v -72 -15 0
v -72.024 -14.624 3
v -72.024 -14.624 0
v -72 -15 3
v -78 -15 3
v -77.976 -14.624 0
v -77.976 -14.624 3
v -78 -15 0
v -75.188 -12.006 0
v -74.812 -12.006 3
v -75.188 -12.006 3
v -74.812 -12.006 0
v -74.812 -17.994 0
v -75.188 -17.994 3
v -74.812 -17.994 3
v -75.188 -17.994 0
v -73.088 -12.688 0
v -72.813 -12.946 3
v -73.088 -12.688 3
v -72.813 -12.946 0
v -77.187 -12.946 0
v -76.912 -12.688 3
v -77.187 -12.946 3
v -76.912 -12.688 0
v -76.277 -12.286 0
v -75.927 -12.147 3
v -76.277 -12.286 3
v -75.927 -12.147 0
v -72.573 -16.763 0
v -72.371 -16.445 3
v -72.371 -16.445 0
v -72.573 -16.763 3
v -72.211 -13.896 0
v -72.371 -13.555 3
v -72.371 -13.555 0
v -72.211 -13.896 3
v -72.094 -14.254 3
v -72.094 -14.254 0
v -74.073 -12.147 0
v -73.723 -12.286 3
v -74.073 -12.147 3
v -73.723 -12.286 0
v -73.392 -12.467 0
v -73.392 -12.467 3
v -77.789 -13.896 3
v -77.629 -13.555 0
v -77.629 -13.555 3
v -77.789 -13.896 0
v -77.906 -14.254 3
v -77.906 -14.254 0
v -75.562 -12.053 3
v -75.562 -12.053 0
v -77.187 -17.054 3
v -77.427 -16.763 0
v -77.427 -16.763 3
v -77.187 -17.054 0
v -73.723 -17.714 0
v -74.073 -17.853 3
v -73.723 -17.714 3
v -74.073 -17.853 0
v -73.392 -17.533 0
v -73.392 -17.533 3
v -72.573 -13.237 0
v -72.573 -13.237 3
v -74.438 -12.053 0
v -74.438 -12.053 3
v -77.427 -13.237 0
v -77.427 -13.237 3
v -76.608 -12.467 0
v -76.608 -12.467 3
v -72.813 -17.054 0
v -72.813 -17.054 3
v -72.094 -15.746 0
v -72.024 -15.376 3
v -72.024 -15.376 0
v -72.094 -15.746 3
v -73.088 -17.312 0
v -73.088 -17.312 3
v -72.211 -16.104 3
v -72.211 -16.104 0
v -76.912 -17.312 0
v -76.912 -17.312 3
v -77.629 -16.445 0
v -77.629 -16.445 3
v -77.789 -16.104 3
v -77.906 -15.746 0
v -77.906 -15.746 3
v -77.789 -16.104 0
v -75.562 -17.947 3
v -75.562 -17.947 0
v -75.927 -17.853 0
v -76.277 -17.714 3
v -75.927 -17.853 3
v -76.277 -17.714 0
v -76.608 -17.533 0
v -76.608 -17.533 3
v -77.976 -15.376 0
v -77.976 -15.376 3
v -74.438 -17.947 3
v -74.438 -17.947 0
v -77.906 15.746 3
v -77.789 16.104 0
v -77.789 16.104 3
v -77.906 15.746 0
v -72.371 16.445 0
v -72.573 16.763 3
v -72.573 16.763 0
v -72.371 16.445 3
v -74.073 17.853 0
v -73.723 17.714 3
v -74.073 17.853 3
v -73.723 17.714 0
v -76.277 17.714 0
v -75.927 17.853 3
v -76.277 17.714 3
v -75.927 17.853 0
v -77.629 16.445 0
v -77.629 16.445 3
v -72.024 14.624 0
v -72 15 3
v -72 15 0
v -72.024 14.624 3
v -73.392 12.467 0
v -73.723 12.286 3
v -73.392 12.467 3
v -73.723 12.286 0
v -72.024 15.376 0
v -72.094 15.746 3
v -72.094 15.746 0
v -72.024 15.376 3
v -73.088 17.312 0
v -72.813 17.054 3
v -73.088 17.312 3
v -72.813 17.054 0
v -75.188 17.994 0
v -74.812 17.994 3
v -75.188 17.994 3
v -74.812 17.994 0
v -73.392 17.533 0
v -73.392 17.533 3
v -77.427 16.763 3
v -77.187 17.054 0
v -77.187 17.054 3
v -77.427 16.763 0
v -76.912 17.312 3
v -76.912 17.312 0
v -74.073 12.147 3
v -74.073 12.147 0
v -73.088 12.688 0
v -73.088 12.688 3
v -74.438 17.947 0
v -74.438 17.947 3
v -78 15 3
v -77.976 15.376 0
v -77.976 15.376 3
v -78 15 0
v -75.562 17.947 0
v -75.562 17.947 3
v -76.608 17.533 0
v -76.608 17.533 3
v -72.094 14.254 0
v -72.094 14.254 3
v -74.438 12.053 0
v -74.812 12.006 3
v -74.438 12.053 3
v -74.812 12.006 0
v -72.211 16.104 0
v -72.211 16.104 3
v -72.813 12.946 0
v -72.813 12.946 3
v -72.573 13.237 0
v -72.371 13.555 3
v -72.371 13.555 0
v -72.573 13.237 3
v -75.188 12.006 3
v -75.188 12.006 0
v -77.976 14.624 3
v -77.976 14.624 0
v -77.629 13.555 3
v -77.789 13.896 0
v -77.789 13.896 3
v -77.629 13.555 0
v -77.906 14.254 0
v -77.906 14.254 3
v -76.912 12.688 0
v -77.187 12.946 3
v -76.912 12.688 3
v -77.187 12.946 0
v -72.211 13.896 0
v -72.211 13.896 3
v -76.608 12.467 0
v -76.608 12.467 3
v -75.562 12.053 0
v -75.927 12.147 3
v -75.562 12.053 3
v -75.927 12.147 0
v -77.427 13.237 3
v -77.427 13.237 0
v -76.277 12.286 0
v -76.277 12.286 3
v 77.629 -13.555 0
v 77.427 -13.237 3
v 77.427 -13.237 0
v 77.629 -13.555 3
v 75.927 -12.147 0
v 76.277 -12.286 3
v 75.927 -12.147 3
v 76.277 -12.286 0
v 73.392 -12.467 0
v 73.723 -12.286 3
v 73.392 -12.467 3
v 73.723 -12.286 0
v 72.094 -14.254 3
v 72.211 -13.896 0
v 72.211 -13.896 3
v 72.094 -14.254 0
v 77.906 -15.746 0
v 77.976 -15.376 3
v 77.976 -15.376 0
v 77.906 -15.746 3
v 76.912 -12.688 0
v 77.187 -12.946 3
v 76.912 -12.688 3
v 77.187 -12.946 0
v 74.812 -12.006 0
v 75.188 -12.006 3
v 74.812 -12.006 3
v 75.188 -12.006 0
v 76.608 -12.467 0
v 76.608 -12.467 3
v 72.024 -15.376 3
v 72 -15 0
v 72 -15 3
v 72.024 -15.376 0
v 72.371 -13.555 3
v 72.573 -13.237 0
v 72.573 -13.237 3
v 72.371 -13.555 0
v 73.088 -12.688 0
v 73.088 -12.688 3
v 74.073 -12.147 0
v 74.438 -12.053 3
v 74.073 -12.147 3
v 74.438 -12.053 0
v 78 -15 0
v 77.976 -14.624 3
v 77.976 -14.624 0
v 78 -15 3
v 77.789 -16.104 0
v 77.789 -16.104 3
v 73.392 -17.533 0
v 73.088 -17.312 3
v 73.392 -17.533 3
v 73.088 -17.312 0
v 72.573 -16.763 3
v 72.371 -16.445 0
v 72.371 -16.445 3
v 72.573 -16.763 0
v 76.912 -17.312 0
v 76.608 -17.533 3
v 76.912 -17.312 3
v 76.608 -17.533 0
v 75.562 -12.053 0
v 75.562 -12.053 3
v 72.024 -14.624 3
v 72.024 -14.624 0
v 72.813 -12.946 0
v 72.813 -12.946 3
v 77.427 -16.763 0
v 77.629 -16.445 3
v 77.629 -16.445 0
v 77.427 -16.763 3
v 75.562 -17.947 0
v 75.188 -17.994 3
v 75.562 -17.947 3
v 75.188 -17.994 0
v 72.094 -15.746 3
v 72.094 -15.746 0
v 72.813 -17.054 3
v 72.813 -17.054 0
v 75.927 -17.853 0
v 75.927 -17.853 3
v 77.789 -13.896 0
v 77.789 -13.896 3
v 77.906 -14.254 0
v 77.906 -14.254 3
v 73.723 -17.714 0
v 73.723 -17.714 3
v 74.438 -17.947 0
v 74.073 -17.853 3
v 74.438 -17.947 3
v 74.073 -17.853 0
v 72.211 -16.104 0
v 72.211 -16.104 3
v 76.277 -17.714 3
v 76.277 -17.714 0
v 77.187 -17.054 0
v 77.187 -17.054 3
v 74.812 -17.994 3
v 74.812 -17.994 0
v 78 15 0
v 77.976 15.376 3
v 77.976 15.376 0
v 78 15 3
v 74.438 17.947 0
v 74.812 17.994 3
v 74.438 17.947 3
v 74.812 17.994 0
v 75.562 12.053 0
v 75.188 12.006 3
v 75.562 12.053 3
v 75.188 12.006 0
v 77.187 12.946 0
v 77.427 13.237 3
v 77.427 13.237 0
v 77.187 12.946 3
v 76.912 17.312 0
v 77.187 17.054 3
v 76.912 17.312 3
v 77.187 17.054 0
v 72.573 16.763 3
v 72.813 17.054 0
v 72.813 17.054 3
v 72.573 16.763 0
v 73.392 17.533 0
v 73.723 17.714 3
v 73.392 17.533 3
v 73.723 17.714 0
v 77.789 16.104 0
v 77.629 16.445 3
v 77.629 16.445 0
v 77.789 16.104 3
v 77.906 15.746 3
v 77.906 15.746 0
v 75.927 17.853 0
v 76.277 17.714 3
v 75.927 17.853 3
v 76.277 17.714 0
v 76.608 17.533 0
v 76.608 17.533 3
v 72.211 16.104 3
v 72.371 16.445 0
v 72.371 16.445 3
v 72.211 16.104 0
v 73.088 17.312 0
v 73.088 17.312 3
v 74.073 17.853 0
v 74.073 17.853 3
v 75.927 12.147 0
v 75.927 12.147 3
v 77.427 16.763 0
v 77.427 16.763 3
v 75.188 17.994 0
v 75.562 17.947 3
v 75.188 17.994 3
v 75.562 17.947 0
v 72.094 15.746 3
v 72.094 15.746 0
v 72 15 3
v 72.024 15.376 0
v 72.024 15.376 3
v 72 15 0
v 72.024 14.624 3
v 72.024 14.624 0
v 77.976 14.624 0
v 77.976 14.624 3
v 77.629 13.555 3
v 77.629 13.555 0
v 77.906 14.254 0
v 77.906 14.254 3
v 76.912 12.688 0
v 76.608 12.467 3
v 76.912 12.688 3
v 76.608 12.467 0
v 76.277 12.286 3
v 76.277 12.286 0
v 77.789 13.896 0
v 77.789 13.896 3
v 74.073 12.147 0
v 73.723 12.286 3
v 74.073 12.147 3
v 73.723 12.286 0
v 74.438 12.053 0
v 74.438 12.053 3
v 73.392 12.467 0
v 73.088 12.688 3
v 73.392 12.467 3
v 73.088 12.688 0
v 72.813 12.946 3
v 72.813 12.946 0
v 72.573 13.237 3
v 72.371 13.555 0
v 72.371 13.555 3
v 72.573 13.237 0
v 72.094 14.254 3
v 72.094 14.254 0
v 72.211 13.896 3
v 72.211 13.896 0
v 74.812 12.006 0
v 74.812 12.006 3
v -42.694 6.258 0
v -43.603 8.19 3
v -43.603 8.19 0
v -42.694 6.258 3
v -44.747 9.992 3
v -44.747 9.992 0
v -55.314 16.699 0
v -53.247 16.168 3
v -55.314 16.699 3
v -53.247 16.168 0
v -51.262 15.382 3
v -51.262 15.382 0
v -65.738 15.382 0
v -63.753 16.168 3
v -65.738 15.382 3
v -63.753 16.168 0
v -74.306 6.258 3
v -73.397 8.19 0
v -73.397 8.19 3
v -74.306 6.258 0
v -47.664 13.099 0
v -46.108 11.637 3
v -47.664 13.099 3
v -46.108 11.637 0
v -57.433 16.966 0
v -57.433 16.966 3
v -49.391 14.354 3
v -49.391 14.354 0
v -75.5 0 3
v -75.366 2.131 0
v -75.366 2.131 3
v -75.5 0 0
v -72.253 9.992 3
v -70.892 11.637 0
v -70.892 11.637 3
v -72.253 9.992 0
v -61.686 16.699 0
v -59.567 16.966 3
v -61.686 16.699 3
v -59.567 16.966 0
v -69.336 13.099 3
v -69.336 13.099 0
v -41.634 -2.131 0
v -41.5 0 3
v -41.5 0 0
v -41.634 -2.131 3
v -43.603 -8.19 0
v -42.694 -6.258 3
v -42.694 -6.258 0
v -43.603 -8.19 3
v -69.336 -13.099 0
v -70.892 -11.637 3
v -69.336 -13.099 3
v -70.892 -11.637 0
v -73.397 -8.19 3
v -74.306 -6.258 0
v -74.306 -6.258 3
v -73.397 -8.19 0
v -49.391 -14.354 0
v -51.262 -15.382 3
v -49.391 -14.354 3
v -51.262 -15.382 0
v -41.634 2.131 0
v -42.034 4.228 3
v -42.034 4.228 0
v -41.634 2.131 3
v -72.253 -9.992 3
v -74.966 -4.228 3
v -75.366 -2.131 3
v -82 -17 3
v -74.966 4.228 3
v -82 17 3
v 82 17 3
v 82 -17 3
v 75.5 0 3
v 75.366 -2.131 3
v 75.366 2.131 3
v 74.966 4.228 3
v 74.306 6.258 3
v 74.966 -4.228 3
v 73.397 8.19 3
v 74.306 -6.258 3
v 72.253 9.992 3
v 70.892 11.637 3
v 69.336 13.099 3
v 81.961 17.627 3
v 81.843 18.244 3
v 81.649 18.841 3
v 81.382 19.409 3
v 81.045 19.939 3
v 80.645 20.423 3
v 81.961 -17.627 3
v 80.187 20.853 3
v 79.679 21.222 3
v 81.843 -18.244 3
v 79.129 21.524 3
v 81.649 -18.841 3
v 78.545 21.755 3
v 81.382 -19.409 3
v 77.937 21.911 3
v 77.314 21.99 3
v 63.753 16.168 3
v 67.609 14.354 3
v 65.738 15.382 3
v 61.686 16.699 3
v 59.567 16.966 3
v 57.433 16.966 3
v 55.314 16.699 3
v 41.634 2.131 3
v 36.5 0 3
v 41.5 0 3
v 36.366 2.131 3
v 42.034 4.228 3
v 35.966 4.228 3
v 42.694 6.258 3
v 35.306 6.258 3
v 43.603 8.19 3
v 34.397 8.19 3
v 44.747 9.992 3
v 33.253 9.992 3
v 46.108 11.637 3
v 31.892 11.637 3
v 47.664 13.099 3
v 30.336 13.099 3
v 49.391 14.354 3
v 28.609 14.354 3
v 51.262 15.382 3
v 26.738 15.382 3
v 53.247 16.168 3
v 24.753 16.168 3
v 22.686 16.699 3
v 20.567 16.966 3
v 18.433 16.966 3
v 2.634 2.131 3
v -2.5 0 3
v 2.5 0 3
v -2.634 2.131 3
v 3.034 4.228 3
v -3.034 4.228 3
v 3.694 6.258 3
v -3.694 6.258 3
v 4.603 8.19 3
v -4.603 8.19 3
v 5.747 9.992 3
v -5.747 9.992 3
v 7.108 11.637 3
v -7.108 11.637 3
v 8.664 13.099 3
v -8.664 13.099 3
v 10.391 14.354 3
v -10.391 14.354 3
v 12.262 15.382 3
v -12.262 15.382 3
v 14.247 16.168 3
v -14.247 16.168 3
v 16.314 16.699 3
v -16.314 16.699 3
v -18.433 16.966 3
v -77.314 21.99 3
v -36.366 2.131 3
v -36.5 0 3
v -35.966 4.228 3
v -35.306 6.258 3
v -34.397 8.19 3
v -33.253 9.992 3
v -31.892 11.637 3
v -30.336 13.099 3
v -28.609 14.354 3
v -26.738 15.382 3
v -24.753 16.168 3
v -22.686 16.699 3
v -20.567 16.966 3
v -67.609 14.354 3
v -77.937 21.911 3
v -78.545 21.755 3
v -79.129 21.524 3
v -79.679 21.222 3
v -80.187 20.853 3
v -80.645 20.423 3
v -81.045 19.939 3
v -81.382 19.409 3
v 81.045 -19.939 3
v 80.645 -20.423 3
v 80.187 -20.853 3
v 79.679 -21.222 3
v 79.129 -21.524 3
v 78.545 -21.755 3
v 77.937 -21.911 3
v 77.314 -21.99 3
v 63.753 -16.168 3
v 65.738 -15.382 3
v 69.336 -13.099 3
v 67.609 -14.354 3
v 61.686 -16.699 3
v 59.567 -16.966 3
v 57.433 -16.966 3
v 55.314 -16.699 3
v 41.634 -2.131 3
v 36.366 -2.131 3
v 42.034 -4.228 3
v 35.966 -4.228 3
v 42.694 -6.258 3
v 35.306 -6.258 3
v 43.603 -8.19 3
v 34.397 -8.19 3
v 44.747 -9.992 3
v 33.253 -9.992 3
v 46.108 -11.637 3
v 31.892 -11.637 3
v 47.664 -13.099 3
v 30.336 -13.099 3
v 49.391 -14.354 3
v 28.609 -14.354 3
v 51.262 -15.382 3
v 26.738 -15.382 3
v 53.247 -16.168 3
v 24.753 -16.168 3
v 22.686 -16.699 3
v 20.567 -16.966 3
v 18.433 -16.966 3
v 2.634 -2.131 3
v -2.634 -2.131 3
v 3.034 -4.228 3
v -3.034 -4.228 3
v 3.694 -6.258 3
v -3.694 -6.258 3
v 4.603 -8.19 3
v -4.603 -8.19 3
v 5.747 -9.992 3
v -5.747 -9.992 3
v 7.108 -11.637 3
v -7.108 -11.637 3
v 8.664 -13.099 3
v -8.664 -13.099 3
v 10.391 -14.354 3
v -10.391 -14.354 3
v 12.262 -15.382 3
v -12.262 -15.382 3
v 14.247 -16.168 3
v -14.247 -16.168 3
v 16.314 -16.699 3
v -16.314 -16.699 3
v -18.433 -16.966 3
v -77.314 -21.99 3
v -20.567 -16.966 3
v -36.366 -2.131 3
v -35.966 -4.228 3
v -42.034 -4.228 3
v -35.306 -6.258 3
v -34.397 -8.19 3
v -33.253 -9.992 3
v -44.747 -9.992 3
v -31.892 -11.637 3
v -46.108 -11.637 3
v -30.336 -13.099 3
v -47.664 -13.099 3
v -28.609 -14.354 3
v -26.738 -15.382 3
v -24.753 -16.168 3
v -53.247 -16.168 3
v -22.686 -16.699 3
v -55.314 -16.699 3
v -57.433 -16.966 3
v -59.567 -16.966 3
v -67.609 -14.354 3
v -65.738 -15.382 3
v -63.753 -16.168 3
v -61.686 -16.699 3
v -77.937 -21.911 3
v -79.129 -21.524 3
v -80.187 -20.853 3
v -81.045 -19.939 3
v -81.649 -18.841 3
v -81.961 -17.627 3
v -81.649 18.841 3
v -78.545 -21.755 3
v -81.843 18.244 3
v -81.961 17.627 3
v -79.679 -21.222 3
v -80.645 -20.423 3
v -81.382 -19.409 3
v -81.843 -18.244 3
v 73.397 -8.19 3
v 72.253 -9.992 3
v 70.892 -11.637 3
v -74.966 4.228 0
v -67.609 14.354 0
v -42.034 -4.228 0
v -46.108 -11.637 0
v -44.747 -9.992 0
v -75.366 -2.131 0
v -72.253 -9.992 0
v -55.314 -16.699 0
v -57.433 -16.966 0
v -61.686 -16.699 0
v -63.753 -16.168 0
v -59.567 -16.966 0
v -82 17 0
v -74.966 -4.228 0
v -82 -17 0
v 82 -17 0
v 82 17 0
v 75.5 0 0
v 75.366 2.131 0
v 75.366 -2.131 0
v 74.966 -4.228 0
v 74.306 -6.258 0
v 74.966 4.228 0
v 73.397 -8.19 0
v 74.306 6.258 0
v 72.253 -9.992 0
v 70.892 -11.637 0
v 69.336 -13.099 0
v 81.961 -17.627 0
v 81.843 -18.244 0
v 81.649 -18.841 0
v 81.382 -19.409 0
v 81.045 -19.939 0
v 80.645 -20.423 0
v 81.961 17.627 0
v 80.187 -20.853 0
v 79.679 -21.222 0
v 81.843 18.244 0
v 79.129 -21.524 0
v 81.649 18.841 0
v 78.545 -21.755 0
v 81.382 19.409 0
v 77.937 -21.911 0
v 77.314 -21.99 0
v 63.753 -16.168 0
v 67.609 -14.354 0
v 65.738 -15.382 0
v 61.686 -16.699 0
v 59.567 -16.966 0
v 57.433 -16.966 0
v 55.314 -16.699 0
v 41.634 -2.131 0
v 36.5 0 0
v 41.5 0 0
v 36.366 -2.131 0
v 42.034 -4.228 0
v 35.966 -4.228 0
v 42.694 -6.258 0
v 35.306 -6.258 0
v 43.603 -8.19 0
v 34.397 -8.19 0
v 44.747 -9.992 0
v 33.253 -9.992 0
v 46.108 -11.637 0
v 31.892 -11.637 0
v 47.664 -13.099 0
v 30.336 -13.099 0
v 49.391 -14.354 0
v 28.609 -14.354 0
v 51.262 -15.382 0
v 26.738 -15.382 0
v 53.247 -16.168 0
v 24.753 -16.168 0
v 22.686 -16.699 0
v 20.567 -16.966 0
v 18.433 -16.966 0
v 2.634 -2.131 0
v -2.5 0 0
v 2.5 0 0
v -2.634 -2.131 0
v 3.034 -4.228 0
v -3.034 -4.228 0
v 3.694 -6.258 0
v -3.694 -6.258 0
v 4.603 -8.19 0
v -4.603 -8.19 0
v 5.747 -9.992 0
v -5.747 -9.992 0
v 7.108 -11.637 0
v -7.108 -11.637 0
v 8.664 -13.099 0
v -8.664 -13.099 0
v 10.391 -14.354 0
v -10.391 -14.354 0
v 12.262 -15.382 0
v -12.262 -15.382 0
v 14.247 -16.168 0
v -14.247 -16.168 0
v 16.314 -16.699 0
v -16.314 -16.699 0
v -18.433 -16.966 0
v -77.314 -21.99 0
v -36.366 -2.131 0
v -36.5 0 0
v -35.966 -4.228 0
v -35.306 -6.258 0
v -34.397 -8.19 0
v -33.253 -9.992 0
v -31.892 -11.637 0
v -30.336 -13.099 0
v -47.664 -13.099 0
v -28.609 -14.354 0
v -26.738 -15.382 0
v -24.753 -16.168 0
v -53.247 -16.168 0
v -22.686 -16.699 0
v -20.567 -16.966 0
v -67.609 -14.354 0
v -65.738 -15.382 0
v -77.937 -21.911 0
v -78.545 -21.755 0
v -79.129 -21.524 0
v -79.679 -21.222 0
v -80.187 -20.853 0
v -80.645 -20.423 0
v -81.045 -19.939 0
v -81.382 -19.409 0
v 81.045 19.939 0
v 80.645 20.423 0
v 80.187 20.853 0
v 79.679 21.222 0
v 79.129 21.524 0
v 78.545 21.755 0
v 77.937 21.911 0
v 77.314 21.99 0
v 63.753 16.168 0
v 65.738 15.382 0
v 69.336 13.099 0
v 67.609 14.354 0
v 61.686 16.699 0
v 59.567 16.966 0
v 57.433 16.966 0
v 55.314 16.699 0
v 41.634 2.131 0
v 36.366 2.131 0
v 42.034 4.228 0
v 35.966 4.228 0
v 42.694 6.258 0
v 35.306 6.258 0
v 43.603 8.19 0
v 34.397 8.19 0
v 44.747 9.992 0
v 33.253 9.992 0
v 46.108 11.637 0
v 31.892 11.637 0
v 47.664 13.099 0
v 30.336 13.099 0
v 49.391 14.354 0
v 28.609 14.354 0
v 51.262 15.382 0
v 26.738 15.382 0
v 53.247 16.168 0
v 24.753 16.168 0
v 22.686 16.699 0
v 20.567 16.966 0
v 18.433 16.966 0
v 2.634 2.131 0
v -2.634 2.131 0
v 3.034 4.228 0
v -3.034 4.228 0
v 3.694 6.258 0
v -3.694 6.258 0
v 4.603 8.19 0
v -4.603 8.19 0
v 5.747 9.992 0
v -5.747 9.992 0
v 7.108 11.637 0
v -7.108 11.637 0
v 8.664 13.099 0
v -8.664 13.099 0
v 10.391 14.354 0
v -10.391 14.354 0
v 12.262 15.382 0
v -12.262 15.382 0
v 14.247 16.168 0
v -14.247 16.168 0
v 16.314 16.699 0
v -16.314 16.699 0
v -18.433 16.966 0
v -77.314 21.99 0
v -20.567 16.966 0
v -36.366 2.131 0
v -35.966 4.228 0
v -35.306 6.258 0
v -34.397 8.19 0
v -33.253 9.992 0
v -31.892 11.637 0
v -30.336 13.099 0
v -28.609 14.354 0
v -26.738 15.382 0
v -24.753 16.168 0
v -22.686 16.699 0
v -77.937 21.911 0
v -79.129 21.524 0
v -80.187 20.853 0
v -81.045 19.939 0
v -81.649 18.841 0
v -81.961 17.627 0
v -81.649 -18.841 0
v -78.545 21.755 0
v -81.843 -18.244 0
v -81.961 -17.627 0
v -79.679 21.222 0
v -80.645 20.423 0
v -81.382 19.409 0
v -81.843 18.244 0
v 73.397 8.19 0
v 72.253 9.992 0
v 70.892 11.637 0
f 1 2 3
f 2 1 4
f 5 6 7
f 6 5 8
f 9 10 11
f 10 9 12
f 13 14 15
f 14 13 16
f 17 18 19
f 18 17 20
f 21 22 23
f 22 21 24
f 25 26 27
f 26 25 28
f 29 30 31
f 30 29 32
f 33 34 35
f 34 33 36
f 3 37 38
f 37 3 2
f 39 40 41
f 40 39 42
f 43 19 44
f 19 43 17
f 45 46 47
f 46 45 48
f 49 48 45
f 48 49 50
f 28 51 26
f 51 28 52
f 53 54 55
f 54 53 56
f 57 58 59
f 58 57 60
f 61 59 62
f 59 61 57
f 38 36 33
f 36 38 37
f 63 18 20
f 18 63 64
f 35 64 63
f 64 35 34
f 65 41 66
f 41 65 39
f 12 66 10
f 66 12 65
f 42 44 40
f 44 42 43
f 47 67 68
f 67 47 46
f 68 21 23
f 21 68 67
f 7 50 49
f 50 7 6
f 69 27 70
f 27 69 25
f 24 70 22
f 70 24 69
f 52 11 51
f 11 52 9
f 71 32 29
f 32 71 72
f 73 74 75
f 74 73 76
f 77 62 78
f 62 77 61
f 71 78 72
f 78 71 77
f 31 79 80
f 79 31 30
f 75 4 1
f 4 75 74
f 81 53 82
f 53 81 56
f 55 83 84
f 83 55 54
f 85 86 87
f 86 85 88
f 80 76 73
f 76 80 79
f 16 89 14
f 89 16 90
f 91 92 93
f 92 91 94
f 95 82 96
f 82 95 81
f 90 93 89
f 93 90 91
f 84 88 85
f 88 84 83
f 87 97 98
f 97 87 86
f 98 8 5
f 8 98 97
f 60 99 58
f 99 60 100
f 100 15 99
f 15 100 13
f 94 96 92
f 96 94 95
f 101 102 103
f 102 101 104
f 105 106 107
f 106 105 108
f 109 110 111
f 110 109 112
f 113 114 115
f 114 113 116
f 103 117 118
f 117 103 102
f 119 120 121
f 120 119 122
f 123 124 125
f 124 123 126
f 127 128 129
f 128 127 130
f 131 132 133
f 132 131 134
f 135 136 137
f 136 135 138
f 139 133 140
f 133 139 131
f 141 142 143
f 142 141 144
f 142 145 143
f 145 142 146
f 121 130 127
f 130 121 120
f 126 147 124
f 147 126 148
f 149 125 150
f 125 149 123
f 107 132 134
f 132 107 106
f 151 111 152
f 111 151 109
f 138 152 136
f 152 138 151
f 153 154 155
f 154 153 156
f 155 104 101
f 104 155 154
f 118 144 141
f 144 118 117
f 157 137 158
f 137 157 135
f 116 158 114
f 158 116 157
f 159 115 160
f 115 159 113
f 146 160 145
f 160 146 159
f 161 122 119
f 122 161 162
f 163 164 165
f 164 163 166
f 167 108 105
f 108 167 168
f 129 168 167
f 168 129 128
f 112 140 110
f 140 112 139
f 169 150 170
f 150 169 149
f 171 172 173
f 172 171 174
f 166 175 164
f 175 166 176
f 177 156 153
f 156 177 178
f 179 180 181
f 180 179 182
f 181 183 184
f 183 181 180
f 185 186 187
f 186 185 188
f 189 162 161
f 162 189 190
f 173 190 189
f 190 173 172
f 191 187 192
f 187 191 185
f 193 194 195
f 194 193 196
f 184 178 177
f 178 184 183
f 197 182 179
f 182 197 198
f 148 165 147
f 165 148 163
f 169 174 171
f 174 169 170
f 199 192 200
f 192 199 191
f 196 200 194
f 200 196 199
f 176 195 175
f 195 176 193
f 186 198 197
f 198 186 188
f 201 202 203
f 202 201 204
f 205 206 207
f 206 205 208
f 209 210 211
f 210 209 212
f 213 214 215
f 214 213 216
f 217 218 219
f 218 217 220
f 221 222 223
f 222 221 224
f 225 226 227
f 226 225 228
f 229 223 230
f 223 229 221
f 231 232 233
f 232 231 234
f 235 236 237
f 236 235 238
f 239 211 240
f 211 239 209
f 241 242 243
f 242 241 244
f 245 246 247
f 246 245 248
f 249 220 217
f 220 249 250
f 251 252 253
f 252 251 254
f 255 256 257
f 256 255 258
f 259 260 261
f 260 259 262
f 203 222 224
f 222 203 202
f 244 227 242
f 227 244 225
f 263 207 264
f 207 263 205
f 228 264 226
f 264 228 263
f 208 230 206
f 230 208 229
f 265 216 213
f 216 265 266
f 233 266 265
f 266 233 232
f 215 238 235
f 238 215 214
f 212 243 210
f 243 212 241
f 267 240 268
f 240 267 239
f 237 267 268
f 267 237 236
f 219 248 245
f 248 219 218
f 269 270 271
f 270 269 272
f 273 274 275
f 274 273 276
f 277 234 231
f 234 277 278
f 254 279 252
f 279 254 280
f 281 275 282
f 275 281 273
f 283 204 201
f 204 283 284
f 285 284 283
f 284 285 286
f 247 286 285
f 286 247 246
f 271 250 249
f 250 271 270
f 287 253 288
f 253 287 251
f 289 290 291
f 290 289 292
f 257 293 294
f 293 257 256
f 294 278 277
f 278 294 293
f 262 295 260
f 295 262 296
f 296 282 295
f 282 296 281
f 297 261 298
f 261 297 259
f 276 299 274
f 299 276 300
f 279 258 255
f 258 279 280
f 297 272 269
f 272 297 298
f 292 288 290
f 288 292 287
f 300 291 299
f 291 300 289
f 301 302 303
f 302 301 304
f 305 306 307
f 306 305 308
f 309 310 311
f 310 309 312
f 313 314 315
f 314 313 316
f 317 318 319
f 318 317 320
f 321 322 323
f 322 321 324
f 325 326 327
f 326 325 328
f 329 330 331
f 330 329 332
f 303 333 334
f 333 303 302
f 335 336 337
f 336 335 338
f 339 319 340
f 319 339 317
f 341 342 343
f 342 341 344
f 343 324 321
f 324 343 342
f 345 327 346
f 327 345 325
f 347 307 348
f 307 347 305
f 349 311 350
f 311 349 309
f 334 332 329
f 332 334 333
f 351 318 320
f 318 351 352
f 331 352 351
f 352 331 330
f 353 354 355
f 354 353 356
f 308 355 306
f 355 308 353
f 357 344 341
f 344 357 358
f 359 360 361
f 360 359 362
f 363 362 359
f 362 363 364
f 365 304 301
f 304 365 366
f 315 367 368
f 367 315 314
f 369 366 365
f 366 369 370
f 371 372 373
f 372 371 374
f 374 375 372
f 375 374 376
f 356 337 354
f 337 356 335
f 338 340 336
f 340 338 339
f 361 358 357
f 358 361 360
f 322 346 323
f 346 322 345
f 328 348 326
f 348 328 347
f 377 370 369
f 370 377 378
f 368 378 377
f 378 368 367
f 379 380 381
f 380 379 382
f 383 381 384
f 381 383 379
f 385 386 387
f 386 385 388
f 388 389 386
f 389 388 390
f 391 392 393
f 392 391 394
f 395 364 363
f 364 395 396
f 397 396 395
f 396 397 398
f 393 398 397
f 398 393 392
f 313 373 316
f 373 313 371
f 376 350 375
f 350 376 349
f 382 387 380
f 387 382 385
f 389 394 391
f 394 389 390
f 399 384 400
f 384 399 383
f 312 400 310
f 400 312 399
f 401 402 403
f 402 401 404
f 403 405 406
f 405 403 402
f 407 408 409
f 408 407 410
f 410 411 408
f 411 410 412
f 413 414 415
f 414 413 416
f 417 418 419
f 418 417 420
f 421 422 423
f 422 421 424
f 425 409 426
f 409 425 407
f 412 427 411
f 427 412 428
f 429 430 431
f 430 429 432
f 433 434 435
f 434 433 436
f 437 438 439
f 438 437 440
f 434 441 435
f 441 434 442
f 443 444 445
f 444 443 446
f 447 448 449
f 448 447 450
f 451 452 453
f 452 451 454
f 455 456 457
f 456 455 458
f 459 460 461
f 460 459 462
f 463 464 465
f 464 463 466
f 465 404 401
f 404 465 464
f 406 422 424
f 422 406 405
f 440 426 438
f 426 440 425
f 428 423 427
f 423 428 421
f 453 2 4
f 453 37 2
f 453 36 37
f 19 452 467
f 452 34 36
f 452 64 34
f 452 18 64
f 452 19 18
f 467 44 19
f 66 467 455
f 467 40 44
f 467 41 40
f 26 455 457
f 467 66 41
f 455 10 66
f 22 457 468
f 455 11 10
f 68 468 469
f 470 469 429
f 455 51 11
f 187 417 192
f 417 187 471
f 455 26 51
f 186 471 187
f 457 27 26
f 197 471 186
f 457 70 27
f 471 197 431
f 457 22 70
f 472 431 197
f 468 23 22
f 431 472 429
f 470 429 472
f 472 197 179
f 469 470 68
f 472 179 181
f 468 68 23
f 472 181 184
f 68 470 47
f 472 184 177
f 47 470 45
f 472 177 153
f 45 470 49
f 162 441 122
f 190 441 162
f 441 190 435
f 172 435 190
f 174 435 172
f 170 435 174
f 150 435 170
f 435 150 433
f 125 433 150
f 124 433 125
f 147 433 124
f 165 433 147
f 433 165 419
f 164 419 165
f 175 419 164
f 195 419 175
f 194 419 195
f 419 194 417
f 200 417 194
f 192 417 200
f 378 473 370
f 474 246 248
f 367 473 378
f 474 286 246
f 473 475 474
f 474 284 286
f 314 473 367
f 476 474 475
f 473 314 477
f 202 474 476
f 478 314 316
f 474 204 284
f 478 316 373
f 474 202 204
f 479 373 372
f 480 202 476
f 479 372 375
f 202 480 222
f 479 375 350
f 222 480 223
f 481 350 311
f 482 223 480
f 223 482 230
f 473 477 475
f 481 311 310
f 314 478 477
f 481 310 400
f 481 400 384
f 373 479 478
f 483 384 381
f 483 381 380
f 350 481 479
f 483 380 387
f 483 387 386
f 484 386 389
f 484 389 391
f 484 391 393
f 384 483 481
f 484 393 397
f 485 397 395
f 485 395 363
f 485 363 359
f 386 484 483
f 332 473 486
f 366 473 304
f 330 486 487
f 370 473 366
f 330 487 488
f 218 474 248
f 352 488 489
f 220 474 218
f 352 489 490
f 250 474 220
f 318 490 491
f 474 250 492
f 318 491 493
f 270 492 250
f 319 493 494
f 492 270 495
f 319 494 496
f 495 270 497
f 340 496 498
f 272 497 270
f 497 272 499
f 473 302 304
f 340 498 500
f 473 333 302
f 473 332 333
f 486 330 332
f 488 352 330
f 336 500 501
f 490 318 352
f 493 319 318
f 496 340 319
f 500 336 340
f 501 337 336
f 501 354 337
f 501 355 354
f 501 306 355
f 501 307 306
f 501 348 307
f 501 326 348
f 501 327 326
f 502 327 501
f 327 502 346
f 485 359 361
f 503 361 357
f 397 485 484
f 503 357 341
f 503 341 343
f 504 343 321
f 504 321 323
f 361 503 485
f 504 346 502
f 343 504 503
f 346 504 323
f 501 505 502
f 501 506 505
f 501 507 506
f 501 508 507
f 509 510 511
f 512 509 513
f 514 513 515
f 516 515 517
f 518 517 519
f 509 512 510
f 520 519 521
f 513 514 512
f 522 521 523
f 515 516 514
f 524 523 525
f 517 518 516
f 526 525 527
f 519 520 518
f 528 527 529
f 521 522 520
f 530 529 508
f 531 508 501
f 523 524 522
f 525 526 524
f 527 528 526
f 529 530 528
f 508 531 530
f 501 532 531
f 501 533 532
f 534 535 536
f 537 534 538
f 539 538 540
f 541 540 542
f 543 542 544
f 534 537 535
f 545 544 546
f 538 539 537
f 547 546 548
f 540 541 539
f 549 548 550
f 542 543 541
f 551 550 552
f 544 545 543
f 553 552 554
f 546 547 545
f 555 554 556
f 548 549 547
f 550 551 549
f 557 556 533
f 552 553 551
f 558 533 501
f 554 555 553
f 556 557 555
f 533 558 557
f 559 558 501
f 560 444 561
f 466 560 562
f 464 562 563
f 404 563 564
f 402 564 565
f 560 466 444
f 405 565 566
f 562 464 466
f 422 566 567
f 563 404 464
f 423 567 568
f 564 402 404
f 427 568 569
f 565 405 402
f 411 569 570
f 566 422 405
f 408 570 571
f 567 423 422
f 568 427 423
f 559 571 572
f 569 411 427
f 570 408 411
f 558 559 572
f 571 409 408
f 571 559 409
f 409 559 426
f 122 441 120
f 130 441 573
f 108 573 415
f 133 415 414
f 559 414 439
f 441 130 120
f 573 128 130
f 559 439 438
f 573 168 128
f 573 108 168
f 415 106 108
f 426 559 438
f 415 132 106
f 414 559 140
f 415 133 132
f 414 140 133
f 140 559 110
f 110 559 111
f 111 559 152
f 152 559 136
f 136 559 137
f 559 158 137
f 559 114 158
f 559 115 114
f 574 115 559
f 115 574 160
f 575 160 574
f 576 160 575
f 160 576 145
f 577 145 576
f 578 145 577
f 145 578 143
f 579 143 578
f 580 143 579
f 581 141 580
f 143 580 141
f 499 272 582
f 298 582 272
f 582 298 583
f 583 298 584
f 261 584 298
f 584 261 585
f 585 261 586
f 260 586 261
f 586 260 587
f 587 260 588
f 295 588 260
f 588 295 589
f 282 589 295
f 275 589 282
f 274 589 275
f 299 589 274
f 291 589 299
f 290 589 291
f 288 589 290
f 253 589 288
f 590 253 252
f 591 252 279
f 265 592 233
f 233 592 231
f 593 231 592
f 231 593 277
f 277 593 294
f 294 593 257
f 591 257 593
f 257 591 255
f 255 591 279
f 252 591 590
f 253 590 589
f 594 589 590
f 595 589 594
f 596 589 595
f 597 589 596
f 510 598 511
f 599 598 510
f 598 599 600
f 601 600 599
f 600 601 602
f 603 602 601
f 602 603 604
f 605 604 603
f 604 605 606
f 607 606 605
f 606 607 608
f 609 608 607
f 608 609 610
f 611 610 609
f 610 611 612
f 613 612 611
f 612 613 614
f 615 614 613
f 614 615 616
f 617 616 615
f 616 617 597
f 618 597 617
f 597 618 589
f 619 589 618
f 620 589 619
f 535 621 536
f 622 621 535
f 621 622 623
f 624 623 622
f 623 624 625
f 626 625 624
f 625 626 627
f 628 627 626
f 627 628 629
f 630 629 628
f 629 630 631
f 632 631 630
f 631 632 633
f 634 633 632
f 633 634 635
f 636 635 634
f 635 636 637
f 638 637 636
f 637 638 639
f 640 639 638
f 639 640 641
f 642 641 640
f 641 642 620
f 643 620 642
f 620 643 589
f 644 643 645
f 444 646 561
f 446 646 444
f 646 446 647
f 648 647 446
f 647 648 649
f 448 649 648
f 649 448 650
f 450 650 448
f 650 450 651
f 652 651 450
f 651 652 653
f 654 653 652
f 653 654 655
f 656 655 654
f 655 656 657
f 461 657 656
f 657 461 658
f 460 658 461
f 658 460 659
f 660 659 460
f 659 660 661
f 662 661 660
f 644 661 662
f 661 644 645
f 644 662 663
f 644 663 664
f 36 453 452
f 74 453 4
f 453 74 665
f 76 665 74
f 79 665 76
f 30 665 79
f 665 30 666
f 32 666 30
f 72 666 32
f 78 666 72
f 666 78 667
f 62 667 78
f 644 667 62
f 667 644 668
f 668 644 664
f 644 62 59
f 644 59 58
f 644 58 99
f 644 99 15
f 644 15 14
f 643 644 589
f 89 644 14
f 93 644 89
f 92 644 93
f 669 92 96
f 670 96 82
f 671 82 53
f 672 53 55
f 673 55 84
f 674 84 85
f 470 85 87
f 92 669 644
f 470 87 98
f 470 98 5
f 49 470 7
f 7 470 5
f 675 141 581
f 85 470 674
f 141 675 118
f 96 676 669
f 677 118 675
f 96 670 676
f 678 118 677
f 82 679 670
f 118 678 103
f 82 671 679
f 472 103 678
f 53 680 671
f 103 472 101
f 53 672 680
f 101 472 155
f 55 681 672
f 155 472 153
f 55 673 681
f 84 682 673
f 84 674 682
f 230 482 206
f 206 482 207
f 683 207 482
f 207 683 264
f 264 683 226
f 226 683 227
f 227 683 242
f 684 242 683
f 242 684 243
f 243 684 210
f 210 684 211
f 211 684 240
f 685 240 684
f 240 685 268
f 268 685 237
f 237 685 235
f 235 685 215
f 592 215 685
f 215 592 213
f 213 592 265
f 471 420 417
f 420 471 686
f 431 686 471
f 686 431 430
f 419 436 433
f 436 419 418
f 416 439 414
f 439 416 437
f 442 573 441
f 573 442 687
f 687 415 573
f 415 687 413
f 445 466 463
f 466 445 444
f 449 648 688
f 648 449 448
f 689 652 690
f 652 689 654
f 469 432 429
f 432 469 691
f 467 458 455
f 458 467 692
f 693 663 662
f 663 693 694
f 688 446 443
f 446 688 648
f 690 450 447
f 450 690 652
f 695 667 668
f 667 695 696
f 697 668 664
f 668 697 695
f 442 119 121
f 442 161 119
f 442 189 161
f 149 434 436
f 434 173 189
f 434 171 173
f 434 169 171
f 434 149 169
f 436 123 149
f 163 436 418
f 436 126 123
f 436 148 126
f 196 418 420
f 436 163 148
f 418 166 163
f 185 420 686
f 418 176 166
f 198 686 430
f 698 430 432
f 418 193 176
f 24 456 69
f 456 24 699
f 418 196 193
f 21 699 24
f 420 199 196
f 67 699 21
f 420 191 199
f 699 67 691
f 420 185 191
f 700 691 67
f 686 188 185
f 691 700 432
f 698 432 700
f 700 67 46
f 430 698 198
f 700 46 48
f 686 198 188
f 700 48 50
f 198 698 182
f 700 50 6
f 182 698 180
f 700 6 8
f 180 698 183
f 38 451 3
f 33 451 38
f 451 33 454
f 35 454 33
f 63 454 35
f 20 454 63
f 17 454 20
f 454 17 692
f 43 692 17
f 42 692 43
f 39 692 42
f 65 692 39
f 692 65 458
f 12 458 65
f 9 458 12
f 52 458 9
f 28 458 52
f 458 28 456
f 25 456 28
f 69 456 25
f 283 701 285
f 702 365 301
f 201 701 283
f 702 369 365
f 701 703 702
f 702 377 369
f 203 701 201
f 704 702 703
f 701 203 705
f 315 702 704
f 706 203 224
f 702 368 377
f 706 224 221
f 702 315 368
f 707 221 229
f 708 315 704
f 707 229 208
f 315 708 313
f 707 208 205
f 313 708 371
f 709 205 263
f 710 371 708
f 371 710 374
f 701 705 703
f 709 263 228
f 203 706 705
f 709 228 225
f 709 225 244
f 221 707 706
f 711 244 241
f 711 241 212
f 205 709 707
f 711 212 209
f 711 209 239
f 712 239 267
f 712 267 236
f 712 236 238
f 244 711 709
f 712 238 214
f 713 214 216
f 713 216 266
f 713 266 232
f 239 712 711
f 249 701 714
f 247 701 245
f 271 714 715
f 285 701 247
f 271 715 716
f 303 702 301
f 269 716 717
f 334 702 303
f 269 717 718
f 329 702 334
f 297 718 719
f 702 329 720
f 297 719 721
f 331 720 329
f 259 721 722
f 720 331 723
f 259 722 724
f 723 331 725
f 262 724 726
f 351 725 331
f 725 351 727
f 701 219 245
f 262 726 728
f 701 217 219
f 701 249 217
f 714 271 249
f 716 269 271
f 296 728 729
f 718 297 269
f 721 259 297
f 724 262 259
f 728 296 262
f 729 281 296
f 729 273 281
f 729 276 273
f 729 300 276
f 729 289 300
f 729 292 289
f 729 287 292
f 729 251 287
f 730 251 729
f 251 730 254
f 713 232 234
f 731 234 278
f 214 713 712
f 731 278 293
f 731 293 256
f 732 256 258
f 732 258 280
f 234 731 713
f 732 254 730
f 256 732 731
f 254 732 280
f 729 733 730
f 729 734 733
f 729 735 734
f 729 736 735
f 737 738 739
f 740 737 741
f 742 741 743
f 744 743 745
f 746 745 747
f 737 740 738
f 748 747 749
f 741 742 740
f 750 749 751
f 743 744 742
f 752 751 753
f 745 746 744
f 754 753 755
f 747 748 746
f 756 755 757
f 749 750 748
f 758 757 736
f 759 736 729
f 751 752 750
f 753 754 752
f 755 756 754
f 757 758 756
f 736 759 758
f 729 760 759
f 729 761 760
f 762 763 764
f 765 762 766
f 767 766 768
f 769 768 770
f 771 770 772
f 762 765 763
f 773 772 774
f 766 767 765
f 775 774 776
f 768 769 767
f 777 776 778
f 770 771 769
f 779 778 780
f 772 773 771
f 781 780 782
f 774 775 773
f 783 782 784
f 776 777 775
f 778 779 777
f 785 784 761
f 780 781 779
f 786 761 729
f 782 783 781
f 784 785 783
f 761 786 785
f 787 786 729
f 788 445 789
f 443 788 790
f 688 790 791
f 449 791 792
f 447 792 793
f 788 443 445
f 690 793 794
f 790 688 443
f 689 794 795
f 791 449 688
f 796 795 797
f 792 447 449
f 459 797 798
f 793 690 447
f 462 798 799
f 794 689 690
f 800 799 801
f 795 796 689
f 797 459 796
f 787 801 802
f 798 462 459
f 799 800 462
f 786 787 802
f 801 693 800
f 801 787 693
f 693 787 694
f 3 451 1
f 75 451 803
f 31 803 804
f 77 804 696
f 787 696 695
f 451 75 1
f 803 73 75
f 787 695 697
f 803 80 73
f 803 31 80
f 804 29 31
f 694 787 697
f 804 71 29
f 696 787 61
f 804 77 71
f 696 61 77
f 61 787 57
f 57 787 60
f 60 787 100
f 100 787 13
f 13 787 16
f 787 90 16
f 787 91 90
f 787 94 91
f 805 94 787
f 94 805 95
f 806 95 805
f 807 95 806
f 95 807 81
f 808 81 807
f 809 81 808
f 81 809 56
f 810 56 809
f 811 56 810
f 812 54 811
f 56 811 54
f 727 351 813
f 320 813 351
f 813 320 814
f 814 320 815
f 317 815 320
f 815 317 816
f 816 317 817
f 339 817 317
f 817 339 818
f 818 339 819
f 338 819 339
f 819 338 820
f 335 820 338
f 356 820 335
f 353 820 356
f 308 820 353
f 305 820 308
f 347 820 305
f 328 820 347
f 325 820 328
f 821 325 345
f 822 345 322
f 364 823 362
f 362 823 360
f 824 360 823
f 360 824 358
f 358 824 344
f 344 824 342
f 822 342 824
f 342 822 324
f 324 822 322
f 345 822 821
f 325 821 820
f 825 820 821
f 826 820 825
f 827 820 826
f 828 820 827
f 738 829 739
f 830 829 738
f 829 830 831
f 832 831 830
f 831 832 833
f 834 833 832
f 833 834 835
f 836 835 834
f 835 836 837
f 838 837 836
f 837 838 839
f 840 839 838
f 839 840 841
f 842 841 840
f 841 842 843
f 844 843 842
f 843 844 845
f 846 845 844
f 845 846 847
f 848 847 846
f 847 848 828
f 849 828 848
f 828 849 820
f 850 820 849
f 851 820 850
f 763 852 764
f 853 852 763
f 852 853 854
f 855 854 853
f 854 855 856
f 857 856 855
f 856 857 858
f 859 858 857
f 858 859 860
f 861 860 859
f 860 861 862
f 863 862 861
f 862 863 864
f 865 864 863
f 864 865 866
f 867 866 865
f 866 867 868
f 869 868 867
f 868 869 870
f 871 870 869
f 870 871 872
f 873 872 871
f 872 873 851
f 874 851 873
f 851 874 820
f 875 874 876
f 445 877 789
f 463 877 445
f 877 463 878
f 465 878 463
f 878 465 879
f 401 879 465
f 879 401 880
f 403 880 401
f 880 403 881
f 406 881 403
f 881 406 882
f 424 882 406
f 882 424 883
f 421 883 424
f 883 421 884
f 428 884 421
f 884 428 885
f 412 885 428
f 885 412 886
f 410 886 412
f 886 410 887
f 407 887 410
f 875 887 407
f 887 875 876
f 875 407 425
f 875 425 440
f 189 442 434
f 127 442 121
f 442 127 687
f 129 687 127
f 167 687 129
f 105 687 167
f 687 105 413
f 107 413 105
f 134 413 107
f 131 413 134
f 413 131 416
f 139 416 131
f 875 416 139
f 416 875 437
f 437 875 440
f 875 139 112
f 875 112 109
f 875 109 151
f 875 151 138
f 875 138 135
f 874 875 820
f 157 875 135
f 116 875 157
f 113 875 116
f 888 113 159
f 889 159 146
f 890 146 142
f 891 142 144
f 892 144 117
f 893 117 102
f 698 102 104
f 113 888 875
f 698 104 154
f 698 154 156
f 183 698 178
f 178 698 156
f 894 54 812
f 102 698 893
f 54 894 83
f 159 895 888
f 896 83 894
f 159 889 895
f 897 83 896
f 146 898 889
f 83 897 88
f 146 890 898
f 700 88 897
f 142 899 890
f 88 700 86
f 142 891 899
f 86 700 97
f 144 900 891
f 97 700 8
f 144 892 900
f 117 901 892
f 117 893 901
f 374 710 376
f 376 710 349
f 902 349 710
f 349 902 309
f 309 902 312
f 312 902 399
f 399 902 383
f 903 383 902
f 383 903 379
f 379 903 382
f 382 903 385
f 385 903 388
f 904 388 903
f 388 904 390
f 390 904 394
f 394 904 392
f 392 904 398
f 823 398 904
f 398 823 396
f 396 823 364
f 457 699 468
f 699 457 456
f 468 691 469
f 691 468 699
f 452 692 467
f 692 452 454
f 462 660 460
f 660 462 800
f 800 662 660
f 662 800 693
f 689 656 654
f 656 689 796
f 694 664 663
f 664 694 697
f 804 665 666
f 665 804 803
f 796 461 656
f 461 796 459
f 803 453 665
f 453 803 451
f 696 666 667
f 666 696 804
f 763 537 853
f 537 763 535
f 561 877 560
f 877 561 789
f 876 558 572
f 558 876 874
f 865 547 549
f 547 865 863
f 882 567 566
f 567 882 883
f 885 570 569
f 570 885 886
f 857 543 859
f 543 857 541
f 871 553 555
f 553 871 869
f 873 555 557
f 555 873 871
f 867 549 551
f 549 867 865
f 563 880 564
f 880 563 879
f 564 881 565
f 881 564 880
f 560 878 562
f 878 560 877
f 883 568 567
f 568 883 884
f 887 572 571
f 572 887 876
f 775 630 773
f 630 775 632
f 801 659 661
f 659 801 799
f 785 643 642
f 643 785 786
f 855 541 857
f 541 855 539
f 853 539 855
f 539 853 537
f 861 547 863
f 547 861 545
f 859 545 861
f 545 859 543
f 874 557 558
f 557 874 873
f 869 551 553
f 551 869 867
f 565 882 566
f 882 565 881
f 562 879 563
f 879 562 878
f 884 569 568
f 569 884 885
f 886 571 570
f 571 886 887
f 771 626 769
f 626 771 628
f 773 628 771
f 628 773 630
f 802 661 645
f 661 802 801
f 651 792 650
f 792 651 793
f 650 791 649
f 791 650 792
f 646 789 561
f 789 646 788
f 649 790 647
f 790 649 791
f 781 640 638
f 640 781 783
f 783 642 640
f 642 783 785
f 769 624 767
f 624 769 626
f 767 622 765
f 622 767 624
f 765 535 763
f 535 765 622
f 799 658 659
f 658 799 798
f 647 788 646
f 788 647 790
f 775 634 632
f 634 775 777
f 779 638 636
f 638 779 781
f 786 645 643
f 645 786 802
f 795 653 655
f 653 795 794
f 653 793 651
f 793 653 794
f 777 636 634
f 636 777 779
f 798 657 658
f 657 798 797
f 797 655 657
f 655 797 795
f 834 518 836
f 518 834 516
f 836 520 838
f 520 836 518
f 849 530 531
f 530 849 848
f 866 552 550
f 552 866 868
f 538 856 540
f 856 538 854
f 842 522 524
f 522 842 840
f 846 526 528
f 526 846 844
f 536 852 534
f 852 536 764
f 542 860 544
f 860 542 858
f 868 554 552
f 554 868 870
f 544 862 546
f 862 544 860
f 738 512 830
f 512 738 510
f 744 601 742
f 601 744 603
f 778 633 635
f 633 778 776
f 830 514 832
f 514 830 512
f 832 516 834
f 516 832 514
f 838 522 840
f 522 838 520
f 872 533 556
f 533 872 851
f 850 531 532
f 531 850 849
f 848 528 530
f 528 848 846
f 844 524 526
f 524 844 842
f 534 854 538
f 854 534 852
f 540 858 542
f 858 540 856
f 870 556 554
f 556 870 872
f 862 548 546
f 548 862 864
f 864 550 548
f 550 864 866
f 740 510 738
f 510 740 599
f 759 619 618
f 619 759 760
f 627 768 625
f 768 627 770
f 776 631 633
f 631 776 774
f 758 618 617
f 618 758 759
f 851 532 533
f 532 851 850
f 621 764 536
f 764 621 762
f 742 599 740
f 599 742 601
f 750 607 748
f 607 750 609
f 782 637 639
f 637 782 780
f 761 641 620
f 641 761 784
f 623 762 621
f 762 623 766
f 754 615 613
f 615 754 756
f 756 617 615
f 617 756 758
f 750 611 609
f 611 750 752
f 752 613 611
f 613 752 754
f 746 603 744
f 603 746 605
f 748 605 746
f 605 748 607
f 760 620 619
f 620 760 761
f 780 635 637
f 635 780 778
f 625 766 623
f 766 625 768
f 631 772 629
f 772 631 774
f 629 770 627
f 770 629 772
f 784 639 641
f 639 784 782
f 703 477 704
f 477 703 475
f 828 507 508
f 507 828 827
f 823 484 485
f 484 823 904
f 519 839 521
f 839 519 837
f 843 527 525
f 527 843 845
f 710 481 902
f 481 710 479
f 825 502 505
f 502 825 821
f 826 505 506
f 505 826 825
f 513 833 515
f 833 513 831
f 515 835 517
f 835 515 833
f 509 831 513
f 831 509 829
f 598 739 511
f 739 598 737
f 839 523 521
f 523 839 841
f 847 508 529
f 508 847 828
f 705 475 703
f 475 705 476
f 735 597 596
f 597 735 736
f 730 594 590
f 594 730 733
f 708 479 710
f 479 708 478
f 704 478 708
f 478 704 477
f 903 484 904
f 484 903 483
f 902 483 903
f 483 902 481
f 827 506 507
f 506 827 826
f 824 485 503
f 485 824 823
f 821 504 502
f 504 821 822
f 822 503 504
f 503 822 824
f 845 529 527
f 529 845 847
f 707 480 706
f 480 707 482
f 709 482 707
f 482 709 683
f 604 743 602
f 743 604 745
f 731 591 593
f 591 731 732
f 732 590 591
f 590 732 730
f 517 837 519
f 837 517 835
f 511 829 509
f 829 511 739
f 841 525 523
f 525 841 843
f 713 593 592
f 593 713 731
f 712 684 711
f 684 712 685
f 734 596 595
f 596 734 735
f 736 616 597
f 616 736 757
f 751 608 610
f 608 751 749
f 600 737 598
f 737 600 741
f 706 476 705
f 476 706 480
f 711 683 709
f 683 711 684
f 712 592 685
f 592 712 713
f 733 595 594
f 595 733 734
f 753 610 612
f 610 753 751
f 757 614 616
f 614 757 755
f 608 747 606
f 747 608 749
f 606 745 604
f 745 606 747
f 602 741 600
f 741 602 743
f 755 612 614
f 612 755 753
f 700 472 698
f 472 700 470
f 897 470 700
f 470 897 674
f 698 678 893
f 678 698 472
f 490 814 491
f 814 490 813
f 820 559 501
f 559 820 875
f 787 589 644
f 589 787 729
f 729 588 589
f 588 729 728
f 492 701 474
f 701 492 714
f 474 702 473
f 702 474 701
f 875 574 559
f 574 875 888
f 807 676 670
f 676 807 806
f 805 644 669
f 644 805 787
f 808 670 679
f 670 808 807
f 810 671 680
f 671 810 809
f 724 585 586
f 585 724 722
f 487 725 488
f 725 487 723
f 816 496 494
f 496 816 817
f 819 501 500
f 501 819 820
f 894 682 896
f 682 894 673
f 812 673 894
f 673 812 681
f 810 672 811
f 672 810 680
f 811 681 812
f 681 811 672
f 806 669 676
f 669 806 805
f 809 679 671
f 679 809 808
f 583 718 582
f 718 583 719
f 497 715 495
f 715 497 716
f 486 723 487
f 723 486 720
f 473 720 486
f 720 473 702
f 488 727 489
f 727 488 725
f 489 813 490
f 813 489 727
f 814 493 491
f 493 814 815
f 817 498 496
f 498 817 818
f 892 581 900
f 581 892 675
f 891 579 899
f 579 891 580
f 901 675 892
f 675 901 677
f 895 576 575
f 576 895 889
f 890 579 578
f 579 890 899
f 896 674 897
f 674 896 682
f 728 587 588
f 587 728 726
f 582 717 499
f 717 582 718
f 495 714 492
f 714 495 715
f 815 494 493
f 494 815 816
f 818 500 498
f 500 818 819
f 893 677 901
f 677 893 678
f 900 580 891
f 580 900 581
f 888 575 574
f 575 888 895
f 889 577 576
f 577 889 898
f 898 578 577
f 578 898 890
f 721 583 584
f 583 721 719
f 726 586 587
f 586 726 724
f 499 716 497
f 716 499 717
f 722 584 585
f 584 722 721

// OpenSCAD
$fn = 50;


difference() {
	union() {
		hull() {
			translate(v = [-77.0000000000, 17.0000000000, 0]) {
				cylinder(h = 3, r = 5);
			}
			translate(v = [77.0000000000, 17.0000000000, 0]) {
				cylinder(h = 3, r = 5);
			}
			translate(v = [-77.0000000000, -17.0000000000, 0]) {
				cylinder(h = 3, r = 5);
			}
			translate(v = [77.0000000000, -17.0000000000, 0]) {
				cylinder(h = 3, r = 5);
			}
		}
	}
	union() {
		#translate(v = [-75.0000000000, -15.0000000000, -100.0000000000]) {
			cylinder(h = 200, r = 3.0000000000);
		}
		#translate(v = [-75.0000000000, 15.0000000000, -100.0000000000]) {
			cylinder(h = 200, r = 3.0000000000);
		}
		#translate(v = [75.0000000000, -15.0000000000, -100.0000000000]) {
			cylinder(h = 200, r = 3.0000000000);
		}
		#translate(v = [75.0000000000, 15.0000000000, -100.0000000000]) {
			cylinder(h = 200, r = 3.0000000000);
		}
		#translate(v = [-58.5000000000, 0, 0]) {
			cylinder(h = 3, r = 17.0000000000);
		}
		#translate(v = [-19.5000000000, 0, 0]) {
			cylinder(h = 3, r = 17.0000000000);
		}
		#translate(v = [19.5000000000, 0, 0]) {
			cylinder(h = 3, r = 17.0000000000);
		}
		#translate(v = [58.5000000000, 0, 0]) {
			cylinder(h = 3, r = 17.0000000000);
		}
	}
}
